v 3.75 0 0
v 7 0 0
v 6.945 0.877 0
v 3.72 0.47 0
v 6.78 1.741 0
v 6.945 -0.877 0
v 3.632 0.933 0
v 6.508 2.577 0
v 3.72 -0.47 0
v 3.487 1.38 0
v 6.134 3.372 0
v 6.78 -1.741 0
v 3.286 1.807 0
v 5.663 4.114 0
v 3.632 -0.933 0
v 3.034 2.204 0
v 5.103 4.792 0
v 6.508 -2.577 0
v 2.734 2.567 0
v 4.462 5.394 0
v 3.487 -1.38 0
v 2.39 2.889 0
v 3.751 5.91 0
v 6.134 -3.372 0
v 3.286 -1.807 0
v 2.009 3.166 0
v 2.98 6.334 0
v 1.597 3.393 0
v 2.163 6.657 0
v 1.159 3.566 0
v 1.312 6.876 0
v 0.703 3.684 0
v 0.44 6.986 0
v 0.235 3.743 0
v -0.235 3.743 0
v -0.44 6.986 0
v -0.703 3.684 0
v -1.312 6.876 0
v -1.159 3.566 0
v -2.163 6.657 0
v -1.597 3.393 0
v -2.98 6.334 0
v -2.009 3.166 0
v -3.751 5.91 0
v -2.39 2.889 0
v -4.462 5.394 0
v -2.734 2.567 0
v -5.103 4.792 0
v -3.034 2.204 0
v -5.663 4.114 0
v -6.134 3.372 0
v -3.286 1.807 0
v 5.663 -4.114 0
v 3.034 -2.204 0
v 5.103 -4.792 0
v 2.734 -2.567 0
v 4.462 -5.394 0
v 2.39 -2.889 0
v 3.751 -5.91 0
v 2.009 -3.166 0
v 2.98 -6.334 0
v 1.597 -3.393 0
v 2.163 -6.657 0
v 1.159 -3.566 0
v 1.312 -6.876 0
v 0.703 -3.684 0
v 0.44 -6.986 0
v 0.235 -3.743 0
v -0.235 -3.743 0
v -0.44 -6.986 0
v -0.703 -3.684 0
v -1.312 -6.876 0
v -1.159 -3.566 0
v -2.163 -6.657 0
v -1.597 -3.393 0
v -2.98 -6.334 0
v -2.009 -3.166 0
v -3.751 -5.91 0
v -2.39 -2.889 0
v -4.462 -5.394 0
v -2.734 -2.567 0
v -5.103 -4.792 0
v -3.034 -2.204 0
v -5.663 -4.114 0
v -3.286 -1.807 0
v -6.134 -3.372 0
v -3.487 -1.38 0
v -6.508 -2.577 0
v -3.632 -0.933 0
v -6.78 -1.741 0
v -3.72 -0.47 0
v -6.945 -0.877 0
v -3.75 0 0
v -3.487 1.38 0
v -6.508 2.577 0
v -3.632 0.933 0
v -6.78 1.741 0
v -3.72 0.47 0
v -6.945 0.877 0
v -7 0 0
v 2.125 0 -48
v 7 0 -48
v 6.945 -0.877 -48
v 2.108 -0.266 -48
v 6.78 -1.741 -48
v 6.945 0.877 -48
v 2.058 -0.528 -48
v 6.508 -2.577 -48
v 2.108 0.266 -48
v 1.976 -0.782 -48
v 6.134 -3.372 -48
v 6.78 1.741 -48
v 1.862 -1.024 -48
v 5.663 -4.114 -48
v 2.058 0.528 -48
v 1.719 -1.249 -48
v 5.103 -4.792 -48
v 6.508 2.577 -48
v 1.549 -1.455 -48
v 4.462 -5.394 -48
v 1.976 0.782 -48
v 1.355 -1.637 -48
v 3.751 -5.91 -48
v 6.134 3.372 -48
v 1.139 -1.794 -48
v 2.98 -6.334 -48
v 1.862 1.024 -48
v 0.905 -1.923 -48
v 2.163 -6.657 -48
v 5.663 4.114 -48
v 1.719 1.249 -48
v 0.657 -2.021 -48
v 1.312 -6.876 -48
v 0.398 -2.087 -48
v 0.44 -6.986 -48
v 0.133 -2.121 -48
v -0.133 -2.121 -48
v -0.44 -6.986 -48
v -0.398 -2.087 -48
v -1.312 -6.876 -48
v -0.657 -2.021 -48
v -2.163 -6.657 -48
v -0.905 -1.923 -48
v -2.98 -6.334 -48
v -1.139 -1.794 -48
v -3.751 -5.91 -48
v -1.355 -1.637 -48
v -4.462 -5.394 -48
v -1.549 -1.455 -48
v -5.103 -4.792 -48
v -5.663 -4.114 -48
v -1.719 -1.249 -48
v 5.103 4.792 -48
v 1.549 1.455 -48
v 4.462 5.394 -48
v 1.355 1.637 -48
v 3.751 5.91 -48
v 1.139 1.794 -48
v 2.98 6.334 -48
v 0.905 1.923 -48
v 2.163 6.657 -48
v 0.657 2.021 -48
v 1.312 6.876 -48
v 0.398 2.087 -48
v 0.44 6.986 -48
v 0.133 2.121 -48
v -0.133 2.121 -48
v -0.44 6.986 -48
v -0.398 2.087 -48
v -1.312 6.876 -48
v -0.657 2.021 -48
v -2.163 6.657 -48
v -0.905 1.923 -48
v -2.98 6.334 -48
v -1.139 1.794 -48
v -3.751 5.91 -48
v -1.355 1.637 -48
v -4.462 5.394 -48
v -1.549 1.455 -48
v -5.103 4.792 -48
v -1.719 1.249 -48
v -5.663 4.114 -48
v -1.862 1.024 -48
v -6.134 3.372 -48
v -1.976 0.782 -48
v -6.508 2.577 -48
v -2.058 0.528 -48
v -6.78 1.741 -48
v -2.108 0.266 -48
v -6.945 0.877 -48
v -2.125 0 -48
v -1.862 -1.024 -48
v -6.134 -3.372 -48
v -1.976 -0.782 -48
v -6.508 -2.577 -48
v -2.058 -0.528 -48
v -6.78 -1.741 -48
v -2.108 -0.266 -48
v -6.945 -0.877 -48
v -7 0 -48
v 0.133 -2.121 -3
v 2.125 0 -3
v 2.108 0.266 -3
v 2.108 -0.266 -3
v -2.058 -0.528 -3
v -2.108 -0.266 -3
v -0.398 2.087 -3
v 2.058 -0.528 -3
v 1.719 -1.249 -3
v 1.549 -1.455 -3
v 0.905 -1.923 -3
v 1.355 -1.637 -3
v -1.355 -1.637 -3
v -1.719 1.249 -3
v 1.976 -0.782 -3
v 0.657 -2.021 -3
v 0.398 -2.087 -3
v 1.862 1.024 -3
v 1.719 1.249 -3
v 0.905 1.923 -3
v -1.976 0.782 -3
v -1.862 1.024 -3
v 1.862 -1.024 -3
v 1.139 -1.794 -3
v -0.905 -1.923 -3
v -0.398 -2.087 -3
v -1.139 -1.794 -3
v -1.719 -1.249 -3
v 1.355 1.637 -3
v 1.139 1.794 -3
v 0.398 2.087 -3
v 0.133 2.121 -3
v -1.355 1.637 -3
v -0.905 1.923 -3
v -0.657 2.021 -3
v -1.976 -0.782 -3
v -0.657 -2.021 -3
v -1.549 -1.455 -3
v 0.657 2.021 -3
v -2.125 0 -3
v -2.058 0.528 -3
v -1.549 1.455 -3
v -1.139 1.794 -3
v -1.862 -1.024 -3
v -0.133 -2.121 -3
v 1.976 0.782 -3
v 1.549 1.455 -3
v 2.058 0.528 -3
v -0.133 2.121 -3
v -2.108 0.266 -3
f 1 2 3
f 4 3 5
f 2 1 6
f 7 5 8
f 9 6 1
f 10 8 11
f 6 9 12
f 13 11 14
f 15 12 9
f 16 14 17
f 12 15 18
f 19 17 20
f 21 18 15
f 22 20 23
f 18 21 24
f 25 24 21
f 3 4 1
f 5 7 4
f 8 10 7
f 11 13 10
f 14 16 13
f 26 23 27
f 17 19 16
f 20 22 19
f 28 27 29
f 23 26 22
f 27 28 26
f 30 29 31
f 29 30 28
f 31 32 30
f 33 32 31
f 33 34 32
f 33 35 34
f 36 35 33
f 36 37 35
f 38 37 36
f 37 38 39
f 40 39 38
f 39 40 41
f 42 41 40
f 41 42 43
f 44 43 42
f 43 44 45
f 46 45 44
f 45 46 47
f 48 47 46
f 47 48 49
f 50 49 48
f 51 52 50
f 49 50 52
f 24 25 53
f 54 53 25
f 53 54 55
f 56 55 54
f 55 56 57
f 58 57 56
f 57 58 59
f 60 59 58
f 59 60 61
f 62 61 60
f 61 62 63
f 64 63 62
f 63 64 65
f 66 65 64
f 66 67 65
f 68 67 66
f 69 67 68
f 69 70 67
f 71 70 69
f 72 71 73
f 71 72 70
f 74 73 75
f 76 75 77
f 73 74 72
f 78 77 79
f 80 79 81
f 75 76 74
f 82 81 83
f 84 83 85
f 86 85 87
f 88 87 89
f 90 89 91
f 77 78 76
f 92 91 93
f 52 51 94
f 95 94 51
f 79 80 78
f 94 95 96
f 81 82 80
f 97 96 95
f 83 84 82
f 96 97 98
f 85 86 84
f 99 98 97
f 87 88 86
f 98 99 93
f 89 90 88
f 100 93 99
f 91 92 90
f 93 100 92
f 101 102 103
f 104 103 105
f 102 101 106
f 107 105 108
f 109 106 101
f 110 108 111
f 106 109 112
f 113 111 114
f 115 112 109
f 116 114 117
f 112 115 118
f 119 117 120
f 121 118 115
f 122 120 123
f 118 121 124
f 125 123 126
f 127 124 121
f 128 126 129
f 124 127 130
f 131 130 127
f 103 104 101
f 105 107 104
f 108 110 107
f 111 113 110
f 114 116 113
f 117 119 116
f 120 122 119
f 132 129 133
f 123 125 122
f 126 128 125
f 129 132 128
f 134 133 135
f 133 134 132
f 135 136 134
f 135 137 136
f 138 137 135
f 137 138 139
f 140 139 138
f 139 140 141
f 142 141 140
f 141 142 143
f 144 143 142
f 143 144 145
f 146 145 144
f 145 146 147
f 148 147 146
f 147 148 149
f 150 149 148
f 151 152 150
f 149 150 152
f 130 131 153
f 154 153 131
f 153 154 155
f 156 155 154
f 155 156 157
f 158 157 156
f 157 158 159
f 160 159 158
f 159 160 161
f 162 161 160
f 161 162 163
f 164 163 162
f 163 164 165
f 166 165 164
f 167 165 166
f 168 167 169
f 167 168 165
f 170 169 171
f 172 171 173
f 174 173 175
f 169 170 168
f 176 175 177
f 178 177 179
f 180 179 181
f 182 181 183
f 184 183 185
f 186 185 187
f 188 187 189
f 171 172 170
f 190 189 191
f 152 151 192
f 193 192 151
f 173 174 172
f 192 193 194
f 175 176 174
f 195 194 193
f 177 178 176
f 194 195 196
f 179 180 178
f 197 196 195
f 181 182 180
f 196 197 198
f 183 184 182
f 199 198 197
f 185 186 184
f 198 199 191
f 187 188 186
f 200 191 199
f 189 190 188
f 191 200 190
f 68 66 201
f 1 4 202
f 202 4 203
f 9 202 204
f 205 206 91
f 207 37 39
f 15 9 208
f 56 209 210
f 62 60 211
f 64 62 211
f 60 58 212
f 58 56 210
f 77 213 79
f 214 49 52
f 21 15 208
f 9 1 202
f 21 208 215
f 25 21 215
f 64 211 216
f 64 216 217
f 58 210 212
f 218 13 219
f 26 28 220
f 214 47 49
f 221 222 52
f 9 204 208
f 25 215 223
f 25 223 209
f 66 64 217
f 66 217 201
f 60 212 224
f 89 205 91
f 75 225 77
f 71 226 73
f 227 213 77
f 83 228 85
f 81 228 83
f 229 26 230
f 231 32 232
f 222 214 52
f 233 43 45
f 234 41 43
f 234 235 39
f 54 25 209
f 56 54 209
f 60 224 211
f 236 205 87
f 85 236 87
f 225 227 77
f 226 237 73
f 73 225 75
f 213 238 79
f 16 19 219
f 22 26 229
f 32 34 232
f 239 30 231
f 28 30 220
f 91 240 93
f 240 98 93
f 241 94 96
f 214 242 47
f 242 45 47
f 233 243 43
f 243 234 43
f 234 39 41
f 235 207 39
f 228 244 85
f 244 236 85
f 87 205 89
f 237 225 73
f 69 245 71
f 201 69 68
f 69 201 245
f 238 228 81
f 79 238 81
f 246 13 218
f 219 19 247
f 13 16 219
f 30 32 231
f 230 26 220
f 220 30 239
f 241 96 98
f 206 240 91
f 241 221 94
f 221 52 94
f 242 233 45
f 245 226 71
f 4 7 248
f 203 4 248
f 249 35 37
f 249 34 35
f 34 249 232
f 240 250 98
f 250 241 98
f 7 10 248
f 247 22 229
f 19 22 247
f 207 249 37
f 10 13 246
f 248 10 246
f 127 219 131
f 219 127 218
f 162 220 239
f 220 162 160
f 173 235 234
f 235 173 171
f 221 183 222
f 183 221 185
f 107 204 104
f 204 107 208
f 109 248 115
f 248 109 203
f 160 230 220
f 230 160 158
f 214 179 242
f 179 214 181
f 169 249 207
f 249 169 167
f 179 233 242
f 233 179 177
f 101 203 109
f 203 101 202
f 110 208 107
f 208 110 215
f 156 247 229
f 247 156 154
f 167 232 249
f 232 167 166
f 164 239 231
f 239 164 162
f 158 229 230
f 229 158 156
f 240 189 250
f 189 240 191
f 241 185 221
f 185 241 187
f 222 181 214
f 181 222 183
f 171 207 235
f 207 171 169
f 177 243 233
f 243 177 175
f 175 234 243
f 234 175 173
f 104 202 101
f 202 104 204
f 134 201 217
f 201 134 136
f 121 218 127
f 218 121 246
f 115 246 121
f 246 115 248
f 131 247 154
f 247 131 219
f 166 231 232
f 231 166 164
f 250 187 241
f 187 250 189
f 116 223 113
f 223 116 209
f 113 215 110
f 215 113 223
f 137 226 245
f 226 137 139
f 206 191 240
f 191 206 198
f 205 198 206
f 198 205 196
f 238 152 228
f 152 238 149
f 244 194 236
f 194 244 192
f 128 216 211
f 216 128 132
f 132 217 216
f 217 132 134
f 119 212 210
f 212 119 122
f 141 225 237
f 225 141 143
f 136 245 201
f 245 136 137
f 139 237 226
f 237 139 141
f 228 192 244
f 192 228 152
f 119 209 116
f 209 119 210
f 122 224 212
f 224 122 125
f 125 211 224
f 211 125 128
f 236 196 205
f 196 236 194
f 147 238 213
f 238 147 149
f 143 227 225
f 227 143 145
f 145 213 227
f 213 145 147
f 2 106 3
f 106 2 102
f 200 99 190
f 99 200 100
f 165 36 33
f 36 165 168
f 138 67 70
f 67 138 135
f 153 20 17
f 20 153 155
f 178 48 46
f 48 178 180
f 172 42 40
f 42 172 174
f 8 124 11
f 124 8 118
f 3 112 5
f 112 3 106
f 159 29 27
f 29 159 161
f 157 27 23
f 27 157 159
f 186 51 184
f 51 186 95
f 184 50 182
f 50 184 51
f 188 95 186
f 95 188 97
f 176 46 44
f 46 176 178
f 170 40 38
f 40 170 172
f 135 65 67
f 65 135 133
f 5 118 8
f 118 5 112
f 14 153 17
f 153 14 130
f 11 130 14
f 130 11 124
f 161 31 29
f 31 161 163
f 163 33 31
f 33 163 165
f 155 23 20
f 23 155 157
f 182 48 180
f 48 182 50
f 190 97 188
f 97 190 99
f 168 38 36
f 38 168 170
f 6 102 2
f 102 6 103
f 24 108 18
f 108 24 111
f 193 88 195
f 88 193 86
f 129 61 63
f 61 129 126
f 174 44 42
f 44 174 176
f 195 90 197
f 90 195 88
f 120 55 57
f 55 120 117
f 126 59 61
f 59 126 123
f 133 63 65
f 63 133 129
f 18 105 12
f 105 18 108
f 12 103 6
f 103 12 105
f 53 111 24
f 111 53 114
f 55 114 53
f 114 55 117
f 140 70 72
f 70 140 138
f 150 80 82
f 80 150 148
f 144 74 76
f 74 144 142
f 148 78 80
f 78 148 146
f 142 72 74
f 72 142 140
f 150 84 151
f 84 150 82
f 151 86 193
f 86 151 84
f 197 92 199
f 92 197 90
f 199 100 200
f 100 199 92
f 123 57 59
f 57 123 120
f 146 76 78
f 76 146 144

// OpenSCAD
$fn = 50;


difference() {
	union() {
		translate(v = [0, 0, -48.0000000000]) {
			cylinder(h = 48, r = 7.0000000000);
		}
		cylinder(h = 0, r = 17.0000000000);
	}
	union() {
		translate(v = [0, 0, 0]) {
			rotate(a = [0, 0, 0]) {
				difference() {
					union() {
						#translate(v = [0, 0, -48.0000000000]) {
							cylinder(h = 48, r = 2.0000000000);
						}
						#translate(v = [0, 0, -3]) {
							cylinder(h = 3, r = 7.0000000000, r1 = 2.1250000000, r2 = 3.7500000000);
						}
						#translate(v = [0, 0, -48.0000000000]) {
							cylinder(h = 48, r = 2.1250000000);
						}
						#translate(v = [0, 0, -48.0000000000]) {
							cylinder(h = 48, r = 2.0000000000);
						}
					}
					union();
				}
			}
		}
	}
}
